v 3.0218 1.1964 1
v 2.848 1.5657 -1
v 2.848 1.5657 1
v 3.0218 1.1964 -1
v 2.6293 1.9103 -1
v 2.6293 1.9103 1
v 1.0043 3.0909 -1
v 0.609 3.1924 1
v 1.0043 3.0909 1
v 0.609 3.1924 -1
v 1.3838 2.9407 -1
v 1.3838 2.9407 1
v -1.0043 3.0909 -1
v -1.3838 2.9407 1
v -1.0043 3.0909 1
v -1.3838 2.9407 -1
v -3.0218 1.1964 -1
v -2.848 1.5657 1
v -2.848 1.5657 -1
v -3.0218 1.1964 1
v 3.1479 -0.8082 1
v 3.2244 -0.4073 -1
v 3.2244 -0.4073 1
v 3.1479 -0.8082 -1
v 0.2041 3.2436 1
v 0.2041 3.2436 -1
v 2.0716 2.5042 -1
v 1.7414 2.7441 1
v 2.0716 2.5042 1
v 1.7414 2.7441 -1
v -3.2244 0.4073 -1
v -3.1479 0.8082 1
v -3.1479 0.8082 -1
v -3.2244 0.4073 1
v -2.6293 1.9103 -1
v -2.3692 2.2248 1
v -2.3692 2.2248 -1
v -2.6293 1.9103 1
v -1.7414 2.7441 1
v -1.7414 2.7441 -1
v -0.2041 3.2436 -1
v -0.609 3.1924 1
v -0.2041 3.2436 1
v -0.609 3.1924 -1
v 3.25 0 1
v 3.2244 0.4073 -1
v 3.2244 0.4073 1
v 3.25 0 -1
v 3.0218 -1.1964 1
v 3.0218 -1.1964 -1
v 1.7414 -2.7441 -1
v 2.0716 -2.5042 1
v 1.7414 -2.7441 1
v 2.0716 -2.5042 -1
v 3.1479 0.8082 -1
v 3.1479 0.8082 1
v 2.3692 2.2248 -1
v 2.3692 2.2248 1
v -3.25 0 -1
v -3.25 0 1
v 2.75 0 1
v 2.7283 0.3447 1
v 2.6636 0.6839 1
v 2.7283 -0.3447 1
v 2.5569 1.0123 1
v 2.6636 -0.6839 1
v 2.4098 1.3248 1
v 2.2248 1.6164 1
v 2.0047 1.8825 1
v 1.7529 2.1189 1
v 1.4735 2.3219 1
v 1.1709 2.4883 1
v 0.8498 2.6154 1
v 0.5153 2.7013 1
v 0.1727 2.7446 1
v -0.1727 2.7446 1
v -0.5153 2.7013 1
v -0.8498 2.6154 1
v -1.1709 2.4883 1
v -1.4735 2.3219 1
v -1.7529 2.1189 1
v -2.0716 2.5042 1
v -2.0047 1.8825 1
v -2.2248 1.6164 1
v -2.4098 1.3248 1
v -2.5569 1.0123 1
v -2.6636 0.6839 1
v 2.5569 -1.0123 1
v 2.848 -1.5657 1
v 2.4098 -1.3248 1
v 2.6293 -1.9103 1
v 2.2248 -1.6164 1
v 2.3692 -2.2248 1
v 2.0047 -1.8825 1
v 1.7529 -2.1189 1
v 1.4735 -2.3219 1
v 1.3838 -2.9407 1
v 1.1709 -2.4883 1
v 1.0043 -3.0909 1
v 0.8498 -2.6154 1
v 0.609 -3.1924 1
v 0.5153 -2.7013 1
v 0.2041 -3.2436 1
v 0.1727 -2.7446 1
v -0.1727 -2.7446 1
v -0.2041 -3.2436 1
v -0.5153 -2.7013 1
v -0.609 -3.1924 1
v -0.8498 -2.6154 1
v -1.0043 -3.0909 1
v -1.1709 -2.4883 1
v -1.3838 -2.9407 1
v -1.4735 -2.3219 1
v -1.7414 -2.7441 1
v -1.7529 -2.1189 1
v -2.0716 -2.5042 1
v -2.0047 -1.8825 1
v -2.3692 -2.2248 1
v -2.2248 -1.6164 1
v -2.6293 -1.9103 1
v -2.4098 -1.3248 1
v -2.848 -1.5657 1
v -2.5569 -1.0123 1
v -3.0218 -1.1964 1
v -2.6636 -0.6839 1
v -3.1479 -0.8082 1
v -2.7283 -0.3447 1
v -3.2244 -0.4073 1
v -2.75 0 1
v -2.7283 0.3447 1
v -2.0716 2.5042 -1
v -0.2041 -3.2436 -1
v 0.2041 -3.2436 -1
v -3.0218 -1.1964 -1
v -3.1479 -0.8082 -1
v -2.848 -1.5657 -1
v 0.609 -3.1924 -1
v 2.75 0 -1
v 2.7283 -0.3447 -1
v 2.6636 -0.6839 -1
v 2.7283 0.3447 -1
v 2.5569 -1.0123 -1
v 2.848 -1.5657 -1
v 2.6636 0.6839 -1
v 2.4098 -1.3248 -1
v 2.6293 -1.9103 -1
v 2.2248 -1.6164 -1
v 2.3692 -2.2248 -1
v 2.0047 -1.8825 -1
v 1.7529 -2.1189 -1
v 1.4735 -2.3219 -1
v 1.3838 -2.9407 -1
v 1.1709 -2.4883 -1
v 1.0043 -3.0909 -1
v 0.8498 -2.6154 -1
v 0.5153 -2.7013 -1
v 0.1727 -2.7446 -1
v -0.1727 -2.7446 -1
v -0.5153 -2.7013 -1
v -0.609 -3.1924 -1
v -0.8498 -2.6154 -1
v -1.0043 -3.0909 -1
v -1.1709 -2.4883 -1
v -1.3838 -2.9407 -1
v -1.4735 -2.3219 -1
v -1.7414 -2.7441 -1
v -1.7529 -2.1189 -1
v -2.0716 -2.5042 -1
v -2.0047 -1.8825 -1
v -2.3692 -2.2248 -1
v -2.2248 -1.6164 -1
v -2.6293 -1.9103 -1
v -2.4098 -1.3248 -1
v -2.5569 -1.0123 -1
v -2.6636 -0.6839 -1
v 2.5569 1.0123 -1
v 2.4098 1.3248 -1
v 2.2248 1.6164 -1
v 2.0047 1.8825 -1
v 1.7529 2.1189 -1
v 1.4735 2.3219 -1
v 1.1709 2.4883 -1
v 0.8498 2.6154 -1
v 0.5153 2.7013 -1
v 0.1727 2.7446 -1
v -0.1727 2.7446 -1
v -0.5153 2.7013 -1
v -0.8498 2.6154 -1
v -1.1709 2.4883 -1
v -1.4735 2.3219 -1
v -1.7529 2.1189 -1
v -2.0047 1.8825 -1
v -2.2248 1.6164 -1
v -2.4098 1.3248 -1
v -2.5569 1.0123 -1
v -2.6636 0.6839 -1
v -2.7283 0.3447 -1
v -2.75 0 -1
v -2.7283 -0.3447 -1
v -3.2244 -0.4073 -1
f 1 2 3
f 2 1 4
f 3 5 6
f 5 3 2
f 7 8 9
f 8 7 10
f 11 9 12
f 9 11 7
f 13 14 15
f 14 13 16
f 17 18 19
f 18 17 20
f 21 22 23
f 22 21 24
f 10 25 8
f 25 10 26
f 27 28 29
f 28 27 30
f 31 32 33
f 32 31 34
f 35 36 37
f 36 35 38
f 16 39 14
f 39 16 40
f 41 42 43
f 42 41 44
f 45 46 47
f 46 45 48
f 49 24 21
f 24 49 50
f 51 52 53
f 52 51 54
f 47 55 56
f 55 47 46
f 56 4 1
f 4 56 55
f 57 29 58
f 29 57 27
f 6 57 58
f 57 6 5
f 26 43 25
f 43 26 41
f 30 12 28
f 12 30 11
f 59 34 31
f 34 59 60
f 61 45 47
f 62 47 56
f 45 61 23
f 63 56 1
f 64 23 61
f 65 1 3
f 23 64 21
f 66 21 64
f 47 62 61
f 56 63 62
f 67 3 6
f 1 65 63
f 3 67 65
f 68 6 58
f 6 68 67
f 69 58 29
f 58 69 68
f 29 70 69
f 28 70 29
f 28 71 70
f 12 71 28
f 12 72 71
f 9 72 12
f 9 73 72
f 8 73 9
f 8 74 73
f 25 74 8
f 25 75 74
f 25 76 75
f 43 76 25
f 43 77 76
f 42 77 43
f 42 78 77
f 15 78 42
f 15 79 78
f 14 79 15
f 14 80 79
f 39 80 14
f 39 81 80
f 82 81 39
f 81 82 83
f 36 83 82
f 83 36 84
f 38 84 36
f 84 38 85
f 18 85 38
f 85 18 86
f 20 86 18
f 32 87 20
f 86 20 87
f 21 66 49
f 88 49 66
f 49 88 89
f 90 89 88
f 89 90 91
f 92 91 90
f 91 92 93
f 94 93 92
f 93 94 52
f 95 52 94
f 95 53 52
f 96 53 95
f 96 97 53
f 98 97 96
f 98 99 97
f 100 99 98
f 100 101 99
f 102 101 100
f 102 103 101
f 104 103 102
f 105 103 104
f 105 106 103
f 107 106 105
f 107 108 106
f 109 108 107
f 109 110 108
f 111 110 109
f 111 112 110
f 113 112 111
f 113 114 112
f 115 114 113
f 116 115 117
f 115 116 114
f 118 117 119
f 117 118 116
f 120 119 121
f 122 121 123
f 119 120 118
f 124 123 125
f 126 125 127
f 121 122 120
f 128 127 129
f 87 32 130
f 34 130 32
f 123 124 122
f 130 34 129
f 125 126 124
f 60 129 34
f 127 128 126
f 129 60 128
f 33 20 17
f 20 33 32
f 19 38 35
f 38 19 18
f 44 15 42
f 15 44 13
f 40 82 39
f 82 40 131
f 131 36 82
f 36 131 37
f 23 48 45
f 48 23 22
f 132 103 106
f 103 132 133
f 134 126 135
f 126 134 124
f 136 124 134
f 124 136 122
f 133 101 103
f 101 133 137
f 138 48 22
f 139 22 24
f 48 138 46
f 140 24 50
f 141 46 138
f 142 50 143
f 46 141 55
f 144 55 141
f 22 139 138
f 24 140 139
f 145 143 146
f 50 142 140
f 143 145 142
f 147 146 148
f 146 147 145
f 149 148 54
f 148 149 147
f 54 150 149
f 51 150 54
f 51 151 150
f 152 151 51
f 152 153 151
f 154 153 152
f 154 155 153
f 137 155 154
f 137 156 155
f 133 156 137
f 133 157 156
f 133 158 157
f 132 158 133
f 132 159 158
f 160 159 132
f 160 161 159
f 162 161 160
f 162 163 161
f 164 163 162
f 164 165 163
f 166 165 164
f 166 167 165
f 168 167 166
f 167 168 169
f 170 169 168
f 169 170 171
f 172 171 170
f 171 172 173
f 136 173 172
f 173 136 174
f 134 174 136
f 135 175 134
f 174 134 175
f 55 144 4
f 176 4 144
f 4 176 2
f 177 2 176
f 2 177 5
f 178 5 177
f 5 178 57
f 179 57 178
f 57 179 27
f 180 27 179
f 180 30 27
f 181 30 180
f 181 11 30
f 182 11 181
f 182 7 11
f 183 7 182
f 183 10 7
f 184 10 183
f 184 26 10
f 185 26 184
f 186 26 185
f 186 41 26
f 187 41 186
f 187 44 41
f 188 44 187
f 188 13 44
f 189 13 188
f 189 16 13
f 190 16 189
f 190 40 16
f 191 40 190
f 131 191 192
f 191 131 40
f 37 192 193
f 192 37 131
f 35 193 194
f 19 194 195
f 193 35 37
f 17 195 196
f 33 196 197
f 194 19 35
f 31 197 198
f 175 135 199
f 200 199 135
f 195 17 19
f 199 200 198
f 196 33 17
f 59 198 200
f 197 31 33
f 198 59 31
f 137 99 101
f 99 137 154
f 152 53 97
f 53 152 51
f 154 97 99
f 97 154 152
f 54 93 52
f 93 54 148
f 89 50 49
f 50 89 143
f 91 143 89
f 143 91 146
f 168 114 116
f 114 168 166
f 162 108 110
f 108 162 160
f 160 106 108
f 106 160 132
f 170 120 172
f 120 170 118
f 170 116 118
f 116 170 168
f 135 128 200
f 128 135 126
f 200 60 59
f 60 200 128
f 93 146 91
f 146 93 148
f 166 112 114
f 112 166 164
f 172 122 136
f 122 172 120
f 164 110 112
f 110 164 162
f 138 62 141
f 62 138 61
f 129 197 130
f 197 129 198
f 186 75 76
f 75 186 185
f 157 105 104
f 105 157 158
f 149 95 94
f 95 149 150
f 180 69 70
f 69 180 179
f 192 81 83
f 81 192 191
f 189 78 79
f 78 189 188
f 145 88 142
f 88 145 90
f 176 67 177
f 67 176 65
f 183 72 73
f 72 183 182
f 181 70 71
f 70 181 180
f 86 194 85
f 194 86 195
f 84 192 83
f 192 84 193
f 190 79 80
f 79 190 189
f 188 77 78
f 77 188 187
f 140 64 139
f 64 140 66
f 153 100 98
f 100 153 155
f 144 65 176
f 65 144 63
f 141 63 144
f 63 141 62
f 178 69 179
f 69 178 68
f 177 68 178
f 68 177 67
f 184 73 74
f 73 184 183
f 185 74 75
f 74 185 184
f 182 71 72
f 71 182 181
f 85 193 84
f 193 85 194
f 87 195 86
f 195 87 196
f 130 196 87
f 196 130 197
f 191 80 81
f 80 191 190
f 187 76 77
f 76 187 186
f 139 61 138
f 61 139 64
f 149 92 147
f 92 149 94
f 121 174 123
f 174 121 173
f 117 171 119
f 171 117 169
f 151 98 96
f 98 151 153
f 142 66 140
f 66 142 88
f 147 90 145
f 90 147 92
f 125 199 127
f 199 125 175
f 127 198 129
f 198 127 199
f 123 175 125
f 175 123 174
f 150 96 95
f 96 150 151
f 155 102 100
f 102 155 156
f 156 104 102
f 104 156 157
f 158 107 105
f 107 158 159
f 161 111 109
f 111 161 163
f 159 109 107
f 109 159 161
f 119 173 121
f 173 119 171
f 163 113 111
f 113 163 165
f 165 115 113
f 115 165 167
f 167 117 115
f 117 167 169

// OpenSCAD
$fn = 50;


difference() {
	union() {
		translate(v = [0, 0, -1.0000000000]) {
			cylinder(h = 2, r = 3.2500000000);
		}
	}
	union() {
		translate(v = [0, 0, -100.0000000000]) {
			cylinder(h = 200, r = 2.7500000000);
		}
	}
}
